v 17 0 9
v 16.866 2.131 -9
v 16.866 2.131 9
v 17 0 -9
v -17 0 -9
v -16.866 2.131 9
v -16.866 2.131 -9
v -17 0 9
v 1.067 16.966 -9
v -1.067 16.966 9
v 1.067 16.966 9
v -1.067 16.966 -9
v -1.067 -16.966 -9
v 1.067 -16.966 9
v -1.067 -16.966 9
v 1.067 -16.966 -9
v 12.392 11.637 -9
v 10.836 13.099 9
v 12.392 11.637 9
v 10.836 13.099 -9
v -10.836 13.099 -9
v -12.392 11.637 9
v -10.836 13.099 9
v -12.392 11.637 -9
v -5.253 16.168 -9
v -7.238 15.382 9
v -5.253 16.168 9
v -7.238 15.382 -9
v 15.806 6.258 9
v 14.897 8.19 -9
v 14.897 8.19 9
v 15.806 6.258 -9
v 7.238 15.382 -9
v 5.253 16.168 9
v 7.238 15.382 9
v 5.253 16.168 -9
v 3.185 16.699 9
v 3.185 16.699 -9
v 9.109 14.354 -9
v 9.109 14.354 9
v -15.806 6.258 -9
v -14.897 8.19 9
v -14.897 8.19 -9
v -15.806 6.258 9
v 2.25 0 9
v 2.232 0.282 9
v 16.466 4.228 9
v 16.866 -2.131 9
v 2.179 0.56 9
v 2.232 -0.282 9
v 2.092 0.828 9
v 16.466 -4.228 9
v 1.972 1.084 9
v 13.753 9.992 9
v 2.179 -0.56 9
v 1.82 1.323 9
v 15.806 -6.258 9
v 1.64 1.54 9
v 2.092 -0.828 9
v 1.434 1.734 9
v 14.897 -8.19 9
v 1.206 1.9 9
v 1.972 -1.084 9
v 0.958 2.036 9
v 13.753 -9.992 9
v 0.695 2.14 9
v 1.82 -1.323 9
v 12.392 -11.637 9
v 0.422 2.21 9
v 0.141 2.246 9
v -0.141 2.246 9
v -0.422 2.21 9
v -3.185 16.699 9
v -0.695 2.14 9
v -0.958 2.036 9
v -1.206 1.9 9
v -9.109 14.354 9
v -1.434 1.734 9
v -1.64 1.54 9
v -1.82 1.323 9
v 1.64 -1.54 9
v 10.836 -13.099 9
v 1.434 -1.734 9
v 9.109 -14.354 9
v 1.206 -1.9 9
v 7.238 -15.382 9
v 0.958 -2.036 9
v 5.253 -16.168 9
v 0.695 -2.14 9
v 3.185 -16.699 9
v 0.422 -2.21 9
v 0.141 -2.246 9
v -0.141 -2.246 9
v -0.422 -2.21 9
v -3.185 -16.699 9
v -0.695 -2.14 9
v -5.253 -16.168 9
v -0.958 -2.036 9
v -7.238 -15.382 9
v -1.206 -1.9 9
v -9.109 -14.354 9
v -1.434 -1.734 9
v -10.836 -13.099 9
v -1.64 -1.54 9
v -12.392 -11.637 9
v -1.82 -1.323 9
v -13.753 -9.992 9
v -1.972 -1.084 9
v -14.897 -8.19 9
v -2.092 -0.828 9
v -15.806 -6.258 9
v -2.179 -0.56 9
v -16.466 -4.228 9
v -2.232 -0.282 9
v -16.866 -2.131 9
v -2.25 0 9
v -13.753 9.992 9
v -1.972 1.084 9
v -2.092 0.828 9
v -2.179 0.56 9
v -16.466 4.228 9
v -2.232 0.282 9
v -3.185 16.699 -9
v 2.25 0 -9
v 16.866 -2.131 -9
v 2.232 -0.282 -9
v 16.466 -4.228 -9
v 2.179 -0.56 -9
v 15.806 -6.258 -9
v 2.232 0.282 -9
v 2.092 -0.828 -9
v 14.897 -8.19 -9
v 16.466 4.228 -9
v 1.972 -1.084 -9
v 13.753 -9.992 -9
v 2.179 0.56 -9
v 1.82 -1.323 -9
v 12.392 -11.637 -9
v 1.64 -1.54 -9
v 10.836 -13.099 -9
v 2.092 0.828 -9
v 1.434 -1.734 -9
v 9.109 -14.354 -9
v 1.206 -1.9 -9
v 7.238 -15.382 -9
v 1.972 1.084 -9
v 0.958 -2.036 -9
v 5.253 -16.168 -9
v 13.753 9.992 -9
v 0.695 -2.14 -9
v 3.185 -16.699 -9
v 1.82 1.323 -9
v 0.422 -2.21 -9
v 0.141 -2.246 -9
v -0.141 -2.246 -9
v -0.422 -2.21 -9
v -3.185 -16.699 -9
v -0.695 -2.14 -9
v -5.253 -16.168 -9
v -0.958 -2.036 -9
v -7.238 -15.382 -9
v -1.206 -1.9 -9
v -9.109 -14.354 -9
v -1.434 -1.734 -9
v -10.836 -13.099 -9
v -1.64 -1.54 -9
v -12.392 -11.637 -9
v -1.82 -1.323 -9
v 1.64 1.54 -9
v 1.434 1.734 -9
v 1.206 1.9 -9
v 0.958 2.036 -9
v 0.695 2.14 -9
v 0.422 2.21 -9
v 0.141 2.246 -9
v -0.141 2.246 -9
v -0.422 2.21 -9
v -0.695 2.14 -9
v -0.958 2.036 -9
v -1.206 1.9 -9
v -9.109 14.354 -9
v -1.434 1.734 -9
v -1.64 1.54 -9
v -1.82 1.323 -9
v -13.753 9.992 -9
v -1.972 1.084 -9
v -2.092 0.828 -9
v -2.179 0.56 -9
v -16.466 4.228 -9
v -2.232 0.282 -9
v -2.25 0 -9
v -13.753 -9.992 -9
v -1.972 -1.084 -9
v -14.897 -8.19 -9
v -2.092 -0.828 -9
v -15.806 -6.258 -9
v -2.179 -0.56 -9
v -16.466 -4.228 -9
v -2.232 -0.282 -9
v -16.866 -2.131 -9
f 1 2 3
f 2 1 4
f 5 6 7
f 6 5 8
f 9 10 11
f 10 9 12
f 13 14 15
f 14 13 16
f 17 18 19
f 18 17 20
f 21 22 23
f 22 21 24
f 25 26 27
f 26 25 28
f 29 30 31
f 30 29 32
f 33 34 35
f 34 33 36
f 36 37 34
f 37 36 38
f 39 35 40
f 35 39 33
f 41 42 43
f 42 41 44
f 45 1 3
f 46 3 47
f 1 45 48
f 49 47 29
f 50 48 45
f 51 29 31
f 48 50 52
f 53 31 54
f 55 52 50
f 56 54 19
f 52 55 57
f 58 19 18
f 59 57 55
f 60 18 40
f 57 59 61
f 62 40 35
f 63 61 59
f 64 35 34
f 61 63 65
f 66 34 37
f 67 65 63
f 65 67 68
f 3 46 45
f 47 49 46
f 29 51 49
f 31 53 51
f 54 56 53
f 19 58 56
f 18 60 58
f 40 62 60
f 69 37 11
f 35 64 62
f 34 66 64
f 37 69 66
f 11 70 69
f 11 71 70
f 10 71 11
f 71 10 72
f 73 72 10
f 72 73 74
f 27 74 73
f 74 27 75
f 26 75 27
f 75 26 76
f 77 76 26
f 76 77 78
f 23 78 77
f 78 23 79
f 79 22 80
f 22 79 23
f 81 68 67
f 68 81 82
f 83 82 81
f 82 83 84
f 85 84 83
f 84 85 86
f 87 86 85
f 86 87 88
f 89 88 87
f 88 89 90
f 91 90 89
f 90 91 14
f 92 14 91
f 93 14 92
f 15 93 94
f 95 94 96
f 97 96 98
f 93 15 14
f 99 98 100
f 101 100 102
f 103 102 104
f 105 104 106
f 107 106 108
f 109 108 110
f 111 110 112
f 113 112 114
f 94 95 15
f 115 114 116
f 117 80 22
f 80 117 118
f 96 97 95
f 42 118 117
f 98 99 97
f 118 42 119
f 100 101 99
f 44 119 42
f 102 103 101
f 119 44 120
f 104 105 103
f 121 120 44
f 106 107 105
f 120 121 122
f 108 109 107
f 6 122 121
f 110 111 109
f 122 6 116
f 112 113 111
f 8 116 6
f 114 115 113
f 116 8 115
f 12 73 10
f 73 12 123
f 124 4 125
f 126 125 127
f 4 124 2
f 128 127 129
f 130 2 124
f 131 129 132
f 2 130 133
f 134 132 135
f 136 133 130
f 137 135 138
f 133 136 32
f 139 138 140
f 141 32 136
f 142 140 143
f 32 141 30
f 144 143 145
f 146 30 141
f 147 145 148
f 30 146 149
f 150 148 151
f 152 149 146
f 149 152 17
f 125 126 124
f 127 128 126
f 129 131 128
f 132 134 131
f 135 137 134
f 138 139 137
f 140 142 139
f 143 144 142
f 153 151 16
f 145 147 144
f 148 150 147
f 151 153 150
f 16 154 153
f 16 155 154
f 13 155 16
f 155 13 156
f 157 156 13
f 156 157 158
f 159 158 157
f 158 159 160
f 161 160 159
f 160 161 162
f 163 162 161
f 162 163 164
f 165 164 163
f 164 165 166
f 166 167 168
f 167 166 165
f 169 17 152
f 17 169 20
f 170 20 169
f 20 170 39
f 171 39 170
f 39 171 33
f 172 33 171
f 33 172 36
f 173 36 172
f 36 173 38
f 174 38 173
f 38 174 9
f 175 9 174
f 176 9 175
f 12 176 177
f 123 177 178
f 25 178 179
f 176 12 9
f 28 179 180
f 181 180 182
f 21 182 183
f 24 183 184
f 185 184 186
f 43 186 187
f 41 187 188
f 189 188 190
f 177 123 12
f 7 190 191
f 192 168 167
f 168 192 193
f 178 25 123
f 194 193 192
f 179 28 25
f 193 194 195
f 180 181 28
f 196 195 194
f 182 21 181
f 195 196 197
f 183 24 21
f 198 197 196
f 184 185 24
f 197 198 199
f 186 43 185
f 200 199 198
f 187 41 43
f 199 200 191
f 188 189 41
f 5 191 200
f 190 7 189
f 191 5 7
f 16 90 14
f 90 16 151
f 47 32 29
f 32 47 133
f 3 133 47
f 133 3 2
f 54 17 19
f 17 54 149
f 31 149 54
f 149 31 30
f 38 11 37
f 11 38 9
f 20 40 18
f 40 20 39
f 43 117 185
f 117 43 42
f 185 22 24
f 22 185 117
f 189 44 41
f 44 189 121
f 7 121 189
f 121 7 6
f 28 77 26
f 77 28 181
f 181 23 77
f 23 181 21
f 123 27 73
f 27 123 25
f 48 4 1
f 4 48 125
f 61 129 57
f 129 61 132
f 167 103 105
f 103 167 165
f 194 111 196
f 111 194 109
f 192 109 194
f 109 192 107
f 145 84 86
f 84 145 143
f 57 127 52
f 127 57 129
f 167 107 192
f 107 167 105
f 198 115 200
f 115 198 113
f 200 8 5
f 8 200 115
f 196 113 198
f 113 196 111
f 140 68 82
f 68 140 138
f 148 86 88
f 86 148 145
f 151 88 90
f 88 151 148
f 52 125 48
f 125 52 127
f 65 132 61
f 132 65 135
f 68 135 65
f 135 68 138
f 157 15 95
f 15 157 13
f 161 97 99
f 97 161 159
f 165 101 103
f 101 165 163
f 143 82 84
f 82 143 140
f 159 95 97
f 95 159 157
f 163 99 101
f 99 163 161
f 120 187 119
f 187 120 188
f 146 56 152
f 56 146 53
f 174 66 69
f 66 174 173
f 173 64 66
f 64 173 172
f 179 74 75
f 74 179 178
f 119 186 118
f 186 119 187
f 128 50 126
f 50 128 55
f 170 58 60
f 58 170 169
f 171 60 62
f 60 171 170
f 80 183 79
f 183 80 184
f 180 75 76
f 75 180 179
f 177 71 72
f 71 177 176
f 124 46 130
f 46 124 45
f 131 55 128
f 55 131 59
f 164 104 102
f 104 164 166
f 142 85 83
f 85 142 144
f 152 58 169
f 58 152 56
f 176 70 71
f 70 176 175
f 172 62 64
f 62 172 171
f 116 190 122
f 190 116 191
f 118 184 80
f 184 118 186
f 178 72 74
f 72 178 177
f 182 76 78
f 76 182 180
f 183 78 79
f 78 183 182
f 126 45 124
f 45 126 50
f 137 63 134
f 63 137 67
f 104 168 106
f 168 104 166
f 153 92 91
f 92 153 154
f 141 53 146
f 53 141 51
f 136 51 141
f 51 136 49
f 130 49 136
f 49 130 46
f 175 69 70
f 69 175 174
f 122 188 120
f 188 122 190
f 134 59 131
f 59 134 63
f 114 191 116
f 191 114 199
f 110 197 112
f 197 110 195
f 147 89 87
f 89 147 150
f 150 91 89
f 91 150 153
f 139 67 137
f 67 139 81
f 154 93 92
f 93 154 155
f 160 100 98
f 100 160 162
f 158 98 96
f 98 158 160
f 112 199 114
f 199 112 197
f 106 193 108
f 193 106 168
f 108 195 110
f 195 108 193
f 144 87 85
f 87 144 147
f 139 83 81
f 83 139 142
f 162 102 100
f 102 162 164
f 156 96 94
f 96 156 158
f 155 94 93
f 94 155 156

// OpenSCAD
$fn = 50;


difference() {
	union() {
		translate(v = [0, 0, -9.0000000000]) {
			cylinder(h = 18, r = 17.0000000000);
		}
	}
	union() {
		translate(v = [0, 0, -100.0000000000]) {
			cylinder(h = 200, r = 2.2500000000);
		}
	}
}
